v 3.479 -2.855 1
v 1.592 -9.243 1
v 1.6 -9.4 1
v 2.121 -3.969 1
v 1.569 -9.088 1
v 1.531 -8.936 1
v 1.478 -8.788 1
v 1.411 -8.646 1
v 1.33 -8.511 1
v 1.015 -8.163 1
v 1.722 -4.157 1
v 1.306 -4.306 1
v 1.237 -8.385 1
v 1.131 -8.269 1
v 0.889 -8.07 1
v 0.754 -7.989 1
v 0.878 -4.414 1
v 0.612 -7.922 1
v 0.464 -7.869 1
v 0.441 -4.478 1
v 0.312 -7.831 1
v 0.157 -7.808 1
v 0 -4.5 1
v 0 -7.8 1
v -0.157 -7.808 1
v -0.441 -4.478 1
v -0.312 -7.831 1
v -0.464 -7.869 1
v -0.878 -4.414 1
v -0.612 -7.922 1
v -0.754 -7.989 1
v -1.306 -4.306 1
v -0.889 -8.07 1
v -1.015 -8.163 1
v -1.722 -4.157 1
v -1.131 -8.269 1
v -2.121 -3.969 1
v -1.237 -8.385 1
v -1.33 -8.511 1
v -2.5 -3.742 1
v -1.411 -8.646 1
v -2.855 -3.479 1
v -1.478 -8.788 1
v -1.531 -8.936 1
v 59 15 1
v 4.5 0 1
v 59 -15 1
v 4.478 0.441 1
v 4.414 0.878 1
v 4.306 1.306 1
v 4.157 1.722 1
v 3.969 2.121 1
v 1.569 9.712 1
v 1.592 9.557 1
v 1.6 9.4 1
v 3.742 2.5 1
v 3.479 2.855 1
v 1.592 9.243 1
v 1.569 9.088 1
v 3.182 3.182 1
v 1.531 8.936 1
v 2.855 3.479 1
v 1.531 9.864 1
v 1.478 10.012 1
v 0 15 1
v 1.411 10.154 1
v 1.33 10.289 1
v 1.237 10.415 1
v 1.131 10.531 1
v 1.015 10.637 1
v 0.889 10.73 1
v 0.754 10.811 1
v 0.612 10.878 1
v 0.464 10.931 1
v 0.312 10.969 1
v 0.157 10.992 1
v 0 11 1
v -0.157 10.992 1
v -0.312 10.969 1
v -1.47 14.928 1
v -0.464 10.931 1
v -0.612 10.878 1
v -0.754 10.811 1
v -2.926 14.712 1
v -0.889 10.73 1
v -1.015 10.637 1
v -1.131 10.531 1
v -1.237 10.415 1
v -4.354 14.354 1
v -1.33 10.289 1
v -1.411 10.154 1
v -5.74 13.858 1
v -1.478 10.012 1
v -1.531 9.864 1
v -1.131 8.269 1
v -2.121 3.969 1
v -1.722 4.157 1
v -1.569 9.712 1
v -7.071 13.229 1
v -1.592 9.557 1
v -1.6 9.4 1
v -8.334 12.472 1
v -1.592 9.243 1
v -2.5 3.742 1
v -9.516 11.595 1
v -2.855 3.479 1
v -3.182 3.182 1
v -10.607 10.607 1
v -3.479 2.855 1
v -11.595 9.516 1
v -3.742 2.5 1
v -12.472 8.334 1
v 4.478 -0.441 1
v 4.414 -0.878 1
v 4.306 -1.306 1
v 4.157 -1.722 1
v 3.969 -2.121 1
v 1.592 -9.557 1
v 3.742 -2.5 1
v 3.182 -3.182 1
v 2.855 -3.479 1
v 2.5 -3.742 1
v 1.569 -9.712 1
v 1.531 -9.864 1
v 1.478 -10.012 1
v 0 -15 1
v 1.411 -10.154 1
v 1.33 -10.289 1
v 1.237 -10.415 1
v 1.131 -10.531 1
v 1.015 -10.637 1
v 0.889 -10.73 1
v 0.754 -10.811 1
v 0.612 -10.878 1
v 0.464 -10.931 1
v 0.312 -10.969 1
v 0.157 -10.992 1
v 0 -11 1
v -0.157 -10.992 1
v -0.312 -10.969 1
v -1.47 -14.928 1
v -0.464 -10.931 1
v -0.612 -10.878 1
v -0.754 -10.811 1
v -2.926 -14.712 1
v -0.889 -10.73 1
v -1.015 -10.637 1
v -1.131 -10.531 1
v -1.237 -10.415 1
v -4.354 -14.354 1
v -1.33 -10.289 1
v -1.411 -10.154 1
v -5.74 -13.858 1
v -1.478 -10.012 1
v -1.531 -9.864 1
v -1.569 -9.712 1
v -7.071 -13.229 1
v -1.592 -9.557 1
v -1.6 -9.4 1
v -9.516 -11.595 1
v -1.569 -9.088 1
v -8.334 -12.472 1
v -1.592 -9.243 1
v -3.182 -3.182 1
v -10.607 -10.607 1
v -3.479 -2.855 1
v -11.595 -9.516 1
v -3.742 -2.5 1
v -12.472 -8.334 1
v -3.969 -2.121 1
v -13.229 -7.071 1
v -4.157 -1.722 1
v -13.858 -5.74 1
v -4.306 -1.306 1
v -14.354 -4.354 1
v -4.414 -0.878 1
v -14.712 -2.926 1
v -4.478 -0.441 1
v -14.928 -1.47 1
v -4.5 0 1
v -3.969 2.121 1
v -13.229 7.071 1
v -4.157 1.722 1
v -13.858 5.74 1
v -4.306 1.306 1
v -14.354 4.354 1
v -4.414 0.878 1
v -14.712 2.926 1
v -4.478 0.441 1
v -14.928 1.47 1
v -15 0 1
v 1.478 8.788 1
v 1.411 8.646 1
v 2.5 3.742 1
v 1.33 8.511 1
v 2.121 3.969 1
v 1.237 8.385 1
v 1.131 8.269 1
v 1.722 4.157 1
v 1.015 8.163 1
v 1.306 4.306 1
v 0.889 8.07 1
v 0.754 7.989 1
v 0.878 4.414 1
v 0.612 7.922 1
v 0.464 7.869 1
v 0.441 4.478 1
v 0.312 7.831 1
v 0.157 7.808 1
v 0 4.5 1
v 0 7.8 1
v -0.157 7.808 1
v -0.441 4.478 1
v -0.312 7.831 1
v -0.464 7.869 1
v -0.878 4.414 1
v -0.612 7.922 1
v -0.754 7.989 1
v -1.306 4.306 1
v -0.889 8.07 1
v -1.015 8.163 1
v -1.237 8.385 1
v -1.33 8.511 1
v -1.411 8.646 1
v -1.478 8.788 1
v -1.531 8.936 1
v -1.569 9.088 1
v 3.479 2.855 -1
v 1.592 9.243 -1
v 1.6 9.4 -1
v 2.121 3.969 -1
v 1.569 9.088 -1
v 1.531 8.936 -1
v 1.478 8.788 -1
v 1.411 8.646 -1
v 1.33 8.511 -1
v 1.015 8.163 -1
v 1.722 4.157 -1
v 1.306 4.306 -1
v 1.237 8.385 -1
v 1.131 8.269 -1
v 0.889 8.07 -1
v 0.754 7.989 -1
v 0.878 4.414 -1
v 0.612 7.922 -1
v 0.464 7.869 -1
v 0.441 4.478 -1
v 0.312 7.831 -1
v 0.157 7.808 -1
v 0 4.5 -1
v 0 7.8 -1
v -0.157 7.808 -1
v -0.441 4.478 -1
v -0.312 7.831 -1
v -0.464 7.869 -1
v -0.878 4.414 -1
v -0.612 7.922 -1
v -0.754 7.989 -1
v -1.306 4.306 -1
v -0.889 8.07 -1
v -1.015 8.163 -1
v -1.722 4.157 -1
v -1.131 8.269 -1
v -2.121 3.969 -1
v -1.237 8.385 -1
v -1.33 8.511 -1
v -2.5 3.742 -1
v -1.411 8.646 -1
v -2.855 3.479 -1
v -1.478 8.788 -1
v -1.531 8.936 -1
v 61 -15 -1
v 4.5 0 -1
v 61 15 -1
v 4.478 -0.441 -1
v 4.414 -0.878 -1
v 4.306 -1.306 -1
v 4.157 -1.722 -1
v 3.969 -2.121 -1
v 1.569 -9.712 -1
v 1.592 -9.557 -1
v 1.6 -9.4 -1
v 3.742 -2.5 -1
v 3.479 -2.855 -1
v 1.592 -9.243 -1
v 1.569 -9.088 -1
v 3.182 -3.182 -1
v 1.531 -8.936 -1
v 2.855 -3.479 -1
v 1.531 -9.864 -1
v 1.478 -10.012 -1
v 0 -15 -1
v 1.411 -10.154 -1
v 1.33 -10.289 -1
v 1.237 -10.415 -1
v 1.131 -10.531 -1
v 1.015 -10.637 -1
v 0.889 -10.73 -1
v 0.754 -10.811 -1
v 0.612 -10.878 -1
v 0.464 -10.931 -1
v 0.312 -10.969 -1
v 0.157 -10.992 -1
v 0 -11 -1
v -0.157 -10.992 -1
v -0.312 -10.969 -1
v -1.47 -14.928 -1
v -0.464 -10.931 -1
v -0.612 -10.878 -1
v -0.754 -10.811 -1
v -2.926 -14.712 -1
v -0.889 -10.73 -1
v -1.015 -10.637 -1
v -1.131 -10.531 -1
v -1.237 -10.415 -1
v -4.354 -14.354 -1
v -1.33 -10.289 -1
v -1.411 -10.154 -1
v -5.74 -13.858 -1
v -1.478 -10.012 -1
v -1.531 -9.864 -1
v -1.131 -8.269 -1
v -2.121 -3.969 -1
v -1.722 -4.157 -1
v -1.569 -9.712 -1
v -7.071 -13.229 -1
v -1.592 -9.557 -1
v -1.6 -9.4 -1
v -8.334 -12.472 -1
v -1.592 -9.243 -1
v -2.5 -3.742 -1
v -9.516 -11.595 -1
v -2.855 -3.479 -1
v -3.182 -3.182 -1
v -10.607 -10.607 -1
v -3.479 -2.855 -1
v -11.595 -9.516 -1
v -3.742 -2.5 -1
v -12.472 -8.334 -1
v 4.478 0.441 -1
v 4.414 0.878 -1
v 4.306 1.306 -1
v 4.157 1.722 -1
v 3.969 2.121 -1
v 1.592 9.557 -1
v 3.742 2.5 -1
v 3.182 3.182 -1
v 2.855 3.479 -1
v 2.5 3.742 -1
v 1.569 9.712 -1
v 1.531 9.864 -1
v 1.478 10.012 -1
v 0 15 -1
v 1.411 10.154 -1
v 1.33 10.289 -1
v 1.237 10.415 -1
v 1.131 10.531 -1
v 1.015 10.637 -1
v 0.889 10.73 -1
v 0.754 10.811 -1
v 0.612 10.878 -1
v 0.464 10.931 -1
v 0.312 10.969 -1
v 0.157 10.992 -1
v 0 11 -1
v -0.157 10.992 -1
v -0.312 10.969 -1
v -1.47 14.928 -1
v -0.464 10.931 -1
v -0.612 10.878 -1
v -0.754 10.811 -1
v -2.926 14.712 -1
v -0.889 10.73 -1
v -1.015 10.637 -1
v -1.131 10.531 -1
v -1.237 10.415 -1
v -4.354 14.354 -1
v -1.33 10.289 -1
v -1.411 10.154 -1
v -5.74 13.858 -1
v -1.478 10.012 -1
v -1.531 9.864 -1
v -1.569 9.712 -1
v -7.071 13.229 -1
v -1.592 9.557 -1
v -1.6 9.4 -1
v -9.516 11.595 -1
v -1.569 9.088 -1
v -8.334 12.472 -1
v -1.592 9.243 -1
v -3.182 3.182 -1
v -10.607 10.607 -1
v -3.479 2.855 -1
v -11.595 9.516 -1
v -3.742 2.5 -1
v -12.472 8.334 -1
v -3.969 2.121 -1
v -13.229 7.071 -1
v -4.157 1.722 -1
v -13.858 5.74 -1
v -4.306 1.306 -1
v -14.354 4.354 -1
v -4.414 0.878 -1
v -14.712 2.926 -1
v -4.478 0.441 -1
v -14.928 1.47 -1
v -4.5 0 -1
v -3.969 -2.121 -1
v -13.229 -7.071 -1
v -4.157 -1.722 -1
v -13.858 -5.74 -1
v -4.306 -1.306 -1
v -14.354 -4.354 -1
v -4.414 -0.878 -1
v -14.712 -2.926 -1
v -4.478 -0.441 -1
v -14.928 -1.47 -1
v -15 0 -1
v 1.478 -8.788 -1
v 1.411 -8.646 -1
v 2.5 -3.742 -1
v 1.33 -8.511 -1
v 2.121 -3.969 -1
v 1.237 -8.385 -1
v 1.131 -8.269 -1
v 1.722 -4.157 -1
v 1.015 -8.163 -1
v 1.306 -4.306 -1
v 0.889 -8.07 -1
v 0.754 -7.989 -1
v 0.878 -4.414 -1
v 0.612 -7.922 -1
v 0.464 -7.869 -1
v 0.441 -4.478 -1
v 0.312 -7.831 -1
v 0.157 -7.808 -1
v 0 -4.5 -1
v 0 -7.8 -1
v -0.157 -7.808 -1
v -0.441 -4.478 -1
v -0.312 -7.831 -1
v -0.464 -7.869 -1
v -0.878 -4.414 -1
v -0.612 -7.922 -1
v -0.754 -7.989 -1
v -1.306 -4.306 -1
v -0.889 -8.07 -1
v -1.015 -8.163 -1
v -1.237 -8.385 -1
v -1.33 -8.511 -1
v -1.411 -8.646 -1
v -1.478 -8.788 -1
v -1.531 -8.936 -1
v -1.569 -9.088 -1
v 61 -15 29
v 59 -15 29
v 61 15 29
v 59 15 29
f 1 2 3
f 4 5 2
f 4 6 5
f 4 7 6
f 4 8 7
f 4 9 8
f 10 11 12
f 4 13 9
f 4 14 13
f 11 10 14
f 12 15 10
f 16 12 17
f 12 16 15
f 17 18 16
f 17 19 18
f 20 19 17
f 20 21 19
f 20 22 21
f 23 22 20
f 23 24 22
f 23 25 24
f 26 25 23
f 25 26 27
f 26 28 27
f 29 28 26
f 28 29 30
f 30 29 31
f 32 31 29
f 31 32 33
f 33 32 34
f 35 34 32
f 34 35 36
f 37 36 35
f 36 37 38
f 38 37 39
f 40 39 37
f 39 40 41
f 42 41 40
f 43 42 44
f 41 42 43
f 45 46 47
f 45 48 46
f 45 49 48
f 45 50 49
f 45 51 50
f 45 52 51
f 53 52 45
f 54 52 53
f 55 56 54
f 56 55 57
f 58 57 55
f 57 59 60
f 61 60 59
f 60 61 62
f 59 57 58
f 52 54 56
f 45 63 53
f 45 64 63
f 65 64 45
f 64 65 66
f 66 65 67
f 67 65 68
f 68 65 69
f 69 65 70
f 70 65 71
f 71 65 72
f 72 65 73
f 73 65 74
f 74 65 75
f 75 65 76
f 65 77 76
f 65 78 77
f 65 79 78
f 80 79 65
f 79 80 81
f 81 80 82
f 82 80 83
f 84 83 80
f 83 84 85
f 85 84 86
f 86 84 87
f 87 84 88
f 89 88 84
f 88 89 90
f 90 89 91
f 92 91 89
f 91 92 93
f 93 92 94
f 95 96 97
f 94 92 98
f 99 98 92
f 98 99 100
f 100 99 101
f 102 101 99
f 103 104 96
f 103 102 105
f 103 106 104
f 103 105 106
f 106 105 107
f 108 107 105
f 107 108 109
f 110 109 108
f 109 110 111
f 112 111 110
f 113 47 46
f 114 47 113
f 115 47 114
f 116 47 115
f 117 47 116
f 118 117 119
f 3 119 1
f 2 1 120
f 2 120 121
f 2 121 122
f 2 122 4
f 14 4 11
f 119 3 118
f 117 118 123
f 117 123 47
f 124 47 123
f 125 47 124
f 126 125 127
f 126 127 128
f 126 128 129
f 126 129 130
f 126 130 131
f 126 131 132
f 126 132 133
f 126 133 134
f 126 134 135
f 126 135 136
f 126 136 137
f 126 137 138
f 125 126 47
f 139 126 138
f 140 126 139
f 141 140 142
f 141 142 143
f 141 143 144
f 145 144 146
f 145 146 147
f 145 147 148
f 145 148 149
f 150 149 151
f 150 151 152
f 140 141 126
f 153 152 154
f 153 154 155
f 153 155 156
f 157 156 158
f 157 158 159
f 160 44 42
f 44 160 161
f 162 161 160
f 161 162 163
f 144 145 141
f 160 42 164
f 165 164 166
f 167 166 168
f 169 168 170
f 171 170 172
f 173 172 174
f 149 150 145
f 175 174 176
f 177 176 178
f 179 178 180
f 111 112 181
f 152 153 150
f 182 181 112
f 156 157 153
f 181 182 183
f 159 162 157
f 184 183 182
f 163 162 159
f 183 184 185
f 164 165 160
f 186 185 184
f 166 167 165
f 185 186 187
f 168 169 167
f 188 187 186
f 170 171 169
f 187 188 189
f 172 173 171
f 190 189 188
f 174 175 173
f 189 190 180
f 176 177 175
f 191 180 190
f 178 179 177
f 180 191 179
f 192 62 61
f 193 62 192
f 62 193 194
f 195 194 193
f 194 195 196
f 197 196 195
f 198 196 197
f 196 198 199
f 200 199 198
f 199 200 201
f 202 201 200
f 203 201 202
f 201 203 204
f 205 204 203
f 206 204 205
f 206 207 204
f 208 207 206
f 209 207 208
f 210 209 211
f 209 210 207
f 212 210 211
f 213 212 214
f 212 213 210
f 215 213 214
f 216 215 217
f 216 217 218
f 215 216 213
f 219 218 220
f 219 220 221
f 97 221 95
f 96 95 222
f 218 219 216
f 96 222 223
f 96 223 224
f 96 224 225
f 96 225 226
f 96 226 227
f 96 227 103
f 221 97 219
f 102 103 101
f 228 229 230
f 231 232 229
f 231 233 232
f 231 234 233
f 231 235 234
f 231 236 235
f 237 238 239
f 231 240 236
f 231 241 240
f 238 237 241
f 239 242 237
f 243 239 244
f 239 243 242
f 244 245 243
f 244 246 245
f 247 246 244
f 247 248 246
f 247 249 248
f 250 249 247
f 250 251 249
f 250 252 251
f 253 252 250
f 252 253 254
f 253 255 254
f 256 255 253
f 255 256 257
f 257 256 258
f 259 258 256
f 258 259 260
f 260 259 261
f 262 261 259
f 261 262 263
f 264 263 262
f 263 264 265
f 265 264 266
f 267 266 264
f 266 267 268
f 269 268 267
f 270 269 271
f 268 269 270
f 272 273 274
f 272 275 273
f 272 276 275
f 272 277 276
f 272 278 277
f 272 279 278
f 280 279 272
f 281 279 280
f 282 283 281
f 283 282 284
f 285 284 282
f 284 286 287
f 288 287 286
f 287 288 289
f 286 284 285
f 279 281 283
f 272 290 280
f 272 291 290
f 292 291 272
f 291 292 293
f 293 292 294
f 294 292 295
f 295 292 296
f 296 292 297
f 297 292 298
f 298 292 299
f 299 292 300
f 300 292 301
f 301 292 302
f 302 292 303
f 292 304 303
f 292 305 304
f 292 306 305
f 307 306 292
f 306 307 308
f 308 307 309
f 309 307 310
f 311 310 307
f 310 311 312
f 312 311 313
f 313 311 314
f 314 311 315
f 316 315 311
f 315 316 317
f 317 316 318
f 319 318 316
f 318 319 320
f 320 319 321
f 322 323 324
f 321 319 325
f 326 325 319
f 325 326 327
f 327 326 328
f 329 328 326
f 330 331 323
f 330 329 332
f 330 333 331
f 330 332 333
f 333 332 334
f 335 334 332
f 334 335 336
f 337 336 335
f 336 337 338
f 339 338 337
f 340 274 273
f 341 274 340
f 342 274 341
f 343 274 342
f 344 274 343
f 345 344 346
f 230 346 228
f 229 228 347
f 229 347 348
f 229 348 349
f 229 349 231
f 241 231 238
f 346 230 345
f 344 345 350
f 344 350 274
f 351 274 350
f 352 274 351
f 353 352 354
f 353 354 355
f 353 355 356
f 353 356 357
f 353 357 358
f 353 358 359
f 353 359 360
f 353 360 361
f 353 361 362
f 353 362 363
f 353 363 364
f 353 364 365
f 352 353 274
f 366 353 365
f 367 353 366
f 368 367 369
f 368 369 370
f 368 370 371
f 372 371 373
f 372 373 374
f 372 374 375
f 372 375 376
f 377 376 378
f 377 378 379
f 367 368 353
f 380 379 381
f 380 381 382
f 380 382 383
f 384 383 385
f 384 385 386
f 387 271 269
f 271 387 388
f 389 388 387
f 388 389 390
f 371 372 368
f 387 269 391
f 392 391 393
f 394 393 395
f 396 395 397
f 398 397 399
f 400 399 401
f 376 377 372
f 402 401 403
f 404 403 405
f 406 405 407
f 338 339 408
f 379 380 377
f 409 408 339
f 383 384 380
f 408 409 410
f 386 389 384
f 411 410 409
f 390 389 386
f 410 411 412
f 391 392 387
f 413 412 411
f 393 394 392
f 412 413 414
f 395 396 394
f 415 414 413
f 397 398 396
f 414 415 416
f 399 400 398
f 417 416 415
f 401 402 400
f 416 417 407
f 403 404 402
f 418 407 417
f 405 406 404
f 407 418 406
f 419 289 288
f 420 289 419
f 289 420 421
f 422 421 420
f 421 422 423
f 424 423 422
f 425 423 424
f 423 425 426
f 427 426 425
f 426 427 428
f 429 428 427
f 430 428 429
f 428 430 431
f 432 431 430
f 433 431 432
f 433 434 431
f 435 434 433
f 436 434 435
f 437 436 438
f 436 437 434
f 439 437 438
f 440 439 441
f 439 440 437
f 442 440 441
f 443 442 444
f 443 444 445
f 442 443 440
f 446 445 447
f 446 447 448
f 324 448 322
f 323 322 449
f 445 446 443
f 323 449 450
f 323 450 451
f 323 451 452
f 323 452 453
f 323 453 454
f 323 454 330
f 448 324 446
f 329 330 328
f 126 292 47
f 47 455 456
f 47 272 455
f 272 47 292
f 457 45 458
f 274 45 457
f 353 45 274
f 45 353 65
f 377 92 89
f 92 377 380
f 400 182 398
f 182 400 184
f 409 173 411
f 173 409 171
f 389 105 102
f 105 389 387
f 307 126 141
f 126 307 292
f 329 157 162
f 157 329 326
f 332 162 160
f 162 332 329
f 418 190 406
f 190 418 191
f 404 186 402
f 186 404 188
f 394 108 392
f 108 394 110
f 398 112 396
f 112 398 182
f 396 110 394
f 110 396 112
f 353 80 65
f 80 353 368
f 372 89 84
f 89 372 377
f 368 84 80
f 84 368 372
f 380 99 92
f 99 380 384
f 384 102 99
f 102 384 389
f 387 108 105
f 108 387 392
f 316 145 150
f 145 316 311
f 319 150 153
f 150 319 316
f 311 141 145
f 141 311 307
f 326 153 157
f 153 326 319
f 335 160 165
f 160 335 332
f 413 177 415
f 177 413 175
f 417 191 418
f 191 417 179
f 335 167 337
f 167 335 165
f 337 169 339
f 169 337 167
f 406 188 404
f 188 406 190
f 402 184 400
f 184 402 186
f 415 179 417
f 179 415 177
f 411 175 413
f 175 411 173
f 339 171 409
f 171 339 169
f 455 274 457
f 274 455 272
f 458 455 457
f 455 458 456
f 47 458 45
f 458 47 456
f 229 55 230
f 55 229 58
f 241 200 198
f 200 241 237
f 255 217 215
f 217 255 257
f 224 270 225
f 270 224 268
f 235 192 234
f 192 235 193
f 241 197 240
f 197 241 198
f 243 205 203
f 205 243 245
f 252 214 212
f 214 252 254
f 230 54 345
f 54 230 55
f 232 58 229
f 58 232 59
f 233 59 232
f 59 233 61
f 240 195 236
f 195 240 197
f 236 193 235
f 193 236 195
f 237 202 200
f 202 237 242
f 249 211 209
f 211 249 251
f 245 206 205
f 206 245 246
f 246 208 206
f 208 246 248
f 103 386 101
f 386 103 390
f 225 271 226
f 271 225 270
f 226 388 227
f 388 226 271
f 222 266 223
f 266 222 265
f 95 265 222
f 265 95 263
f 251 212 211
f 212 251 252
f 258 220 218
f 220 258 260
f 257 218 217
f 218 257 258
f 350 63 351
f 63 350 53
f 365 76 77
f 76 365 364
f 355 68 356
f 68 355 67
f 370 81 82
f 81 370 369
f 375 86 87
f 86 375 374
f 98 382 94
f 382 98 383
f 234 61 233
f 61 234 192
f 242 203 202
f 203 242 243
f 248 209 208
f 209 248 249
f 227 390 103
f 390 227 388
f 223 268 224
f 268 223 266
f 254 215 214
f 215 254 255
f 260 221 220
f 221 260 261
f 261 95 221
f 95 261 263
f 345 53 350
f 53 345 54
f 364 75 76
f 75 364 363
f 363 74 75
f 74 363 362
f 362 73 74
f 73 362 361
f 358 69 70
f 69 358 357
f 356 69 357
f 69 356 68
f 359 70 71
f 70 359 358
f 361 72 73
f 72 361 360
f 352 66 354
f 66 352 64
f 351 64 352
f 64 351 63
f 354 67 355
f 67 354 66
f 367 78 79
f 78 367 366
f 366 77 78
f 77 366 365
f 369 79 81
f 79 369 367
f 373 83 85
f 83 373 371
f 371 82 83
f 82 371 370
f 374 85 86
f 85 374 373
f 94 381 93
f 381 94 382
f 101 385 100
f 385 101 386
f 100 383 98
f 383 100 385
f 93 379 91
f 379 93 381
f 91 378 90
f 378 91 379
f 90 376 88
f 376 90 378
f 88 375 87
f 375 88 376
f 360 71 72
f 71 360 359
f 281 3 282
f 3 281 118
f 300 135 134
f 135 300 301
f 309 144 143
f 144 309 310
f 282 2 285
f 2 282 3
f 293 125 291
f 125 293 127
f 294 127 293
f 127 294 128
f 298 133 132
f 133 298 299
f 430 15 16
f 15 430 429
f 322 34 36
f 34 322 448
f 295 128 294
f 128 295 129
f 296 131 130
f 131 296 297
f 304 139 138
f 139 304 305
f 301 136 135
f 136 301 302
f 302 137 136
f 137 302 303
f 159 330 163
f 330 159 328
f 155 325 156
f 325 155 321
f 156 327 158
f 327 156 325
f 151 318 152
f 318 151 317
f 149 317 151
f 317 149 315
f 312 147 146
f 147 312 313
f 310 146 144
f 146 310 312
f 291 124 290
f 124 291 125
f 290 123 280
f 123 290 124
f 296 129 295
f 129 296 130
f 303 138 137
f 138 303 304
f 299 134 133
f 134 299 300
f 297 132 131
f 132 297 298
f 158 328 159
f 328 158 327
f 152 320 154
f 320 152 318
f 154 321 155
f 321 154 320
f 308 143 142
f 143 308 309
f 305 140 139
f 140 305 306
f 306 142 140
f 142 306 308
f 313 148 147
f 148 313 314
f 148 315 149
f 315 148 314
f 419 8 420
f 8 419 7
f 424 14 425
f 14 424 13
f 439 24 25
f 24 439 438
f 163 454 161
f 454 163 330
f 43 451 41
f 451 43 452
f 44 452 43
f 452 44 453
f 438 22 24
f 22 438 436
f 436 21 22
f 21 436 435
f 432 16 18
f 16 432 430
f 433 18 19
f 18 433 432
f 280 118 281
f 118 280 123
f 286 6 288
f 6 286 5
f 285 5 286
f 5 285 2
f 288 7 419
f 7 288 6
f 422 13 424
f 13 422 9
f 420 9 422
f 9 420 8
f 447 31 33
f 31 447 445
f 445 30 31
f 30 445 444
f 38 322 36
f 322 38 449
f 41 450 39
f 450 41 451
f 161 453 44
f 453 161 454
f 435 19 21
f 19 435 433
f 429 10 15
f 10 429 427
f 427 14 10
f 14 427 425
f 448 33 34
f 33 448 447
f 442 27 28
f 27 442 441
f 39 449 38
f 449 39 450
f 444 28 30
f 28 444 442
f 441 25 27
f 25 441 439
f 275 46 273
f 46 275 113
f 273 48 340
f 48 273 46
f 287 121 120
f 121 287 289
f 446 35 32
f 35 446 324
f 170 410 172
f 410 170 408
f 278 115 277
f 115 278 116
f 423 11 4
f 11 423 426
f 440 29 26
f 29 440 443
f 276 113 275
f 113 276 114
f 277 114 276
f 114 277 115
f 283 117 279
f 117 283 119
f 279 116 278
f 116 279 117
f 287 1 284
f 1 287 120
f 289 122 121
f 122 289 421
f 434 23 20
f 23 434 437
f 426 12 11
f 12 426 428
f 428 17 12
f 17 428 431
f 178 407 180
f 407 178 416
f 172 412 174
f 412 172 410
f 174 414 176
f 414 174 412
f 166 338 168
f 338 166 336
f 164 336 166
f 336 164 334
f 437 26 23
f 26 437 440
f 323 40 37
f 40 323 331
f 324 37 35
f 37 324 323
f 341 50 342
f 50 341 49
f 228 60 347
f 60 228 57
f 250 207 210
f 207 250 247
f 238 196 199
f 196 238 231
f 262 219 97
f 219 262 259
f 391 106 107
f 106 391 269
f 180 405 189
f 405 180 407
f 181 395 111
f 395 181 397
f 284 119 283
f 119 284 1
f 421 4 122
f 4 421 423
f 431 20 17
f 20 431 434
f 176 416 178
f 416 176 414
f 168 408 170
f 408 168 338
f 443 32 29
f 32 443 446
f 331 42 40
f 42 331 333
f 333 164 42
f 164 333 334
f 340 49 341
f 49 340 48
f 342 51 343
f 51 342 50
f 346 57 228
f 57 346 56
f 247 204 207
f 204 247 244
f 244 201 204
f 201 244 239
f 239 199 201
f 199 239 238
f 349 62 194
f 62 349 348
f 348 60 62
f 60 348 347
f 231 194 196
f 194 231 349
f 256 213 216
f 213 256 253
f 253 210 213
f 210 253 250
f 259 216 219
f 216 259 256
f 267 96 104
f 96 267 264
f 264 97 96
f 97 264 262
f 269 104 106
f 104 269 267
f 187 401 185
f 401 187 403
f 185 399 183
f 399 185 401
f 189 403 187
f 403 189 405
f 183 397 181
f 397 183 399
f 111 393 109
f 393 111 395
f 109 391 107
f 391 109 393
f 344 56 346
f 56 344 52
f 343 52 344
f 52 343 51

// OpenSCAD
$fn =  64;
module pole_3m(){
    rotate([90,0,0]){
cylinder(h=20,d = 3.2, center = true);}
translate([0,0,1]){
}
}


module pole_9m(){
    rotate([90,0,0]){
cylinder(h=20,d = 9, center = true);}
translate([0,0,1]){
}
}

module triangle_holder(){
	cube([25,25,2], center = true);
		rotate([0,0,45]){
			translate([25,0,0])
			cube([50,35.3,2], center = true);

	}
}
module stand(){
translate([0,0,30/2])
rotate([0,90,0])
cube([30,30,2],center = true);	
}
module arm(){
translate([60/2,0,0])
cube([60,30,2],center = true);	
	cylinder(h = 2,d = 30, center = true);
}
module whole_stand(){
arm();
translate([0,0,10])
rotate([90,0,0])
translate([60,4,-15])
stand();}
difference(){
    whole_stand();
            translate([0,11-3.2/2]){
                rotate([90,0,0])
                pole_3m();
        }
            translate([0,-(11-3.2/2),0]){
                rotate([90,0,0])
                pole_3m();
        }
    rotate([90,0,0])
        pole_9m();
}
